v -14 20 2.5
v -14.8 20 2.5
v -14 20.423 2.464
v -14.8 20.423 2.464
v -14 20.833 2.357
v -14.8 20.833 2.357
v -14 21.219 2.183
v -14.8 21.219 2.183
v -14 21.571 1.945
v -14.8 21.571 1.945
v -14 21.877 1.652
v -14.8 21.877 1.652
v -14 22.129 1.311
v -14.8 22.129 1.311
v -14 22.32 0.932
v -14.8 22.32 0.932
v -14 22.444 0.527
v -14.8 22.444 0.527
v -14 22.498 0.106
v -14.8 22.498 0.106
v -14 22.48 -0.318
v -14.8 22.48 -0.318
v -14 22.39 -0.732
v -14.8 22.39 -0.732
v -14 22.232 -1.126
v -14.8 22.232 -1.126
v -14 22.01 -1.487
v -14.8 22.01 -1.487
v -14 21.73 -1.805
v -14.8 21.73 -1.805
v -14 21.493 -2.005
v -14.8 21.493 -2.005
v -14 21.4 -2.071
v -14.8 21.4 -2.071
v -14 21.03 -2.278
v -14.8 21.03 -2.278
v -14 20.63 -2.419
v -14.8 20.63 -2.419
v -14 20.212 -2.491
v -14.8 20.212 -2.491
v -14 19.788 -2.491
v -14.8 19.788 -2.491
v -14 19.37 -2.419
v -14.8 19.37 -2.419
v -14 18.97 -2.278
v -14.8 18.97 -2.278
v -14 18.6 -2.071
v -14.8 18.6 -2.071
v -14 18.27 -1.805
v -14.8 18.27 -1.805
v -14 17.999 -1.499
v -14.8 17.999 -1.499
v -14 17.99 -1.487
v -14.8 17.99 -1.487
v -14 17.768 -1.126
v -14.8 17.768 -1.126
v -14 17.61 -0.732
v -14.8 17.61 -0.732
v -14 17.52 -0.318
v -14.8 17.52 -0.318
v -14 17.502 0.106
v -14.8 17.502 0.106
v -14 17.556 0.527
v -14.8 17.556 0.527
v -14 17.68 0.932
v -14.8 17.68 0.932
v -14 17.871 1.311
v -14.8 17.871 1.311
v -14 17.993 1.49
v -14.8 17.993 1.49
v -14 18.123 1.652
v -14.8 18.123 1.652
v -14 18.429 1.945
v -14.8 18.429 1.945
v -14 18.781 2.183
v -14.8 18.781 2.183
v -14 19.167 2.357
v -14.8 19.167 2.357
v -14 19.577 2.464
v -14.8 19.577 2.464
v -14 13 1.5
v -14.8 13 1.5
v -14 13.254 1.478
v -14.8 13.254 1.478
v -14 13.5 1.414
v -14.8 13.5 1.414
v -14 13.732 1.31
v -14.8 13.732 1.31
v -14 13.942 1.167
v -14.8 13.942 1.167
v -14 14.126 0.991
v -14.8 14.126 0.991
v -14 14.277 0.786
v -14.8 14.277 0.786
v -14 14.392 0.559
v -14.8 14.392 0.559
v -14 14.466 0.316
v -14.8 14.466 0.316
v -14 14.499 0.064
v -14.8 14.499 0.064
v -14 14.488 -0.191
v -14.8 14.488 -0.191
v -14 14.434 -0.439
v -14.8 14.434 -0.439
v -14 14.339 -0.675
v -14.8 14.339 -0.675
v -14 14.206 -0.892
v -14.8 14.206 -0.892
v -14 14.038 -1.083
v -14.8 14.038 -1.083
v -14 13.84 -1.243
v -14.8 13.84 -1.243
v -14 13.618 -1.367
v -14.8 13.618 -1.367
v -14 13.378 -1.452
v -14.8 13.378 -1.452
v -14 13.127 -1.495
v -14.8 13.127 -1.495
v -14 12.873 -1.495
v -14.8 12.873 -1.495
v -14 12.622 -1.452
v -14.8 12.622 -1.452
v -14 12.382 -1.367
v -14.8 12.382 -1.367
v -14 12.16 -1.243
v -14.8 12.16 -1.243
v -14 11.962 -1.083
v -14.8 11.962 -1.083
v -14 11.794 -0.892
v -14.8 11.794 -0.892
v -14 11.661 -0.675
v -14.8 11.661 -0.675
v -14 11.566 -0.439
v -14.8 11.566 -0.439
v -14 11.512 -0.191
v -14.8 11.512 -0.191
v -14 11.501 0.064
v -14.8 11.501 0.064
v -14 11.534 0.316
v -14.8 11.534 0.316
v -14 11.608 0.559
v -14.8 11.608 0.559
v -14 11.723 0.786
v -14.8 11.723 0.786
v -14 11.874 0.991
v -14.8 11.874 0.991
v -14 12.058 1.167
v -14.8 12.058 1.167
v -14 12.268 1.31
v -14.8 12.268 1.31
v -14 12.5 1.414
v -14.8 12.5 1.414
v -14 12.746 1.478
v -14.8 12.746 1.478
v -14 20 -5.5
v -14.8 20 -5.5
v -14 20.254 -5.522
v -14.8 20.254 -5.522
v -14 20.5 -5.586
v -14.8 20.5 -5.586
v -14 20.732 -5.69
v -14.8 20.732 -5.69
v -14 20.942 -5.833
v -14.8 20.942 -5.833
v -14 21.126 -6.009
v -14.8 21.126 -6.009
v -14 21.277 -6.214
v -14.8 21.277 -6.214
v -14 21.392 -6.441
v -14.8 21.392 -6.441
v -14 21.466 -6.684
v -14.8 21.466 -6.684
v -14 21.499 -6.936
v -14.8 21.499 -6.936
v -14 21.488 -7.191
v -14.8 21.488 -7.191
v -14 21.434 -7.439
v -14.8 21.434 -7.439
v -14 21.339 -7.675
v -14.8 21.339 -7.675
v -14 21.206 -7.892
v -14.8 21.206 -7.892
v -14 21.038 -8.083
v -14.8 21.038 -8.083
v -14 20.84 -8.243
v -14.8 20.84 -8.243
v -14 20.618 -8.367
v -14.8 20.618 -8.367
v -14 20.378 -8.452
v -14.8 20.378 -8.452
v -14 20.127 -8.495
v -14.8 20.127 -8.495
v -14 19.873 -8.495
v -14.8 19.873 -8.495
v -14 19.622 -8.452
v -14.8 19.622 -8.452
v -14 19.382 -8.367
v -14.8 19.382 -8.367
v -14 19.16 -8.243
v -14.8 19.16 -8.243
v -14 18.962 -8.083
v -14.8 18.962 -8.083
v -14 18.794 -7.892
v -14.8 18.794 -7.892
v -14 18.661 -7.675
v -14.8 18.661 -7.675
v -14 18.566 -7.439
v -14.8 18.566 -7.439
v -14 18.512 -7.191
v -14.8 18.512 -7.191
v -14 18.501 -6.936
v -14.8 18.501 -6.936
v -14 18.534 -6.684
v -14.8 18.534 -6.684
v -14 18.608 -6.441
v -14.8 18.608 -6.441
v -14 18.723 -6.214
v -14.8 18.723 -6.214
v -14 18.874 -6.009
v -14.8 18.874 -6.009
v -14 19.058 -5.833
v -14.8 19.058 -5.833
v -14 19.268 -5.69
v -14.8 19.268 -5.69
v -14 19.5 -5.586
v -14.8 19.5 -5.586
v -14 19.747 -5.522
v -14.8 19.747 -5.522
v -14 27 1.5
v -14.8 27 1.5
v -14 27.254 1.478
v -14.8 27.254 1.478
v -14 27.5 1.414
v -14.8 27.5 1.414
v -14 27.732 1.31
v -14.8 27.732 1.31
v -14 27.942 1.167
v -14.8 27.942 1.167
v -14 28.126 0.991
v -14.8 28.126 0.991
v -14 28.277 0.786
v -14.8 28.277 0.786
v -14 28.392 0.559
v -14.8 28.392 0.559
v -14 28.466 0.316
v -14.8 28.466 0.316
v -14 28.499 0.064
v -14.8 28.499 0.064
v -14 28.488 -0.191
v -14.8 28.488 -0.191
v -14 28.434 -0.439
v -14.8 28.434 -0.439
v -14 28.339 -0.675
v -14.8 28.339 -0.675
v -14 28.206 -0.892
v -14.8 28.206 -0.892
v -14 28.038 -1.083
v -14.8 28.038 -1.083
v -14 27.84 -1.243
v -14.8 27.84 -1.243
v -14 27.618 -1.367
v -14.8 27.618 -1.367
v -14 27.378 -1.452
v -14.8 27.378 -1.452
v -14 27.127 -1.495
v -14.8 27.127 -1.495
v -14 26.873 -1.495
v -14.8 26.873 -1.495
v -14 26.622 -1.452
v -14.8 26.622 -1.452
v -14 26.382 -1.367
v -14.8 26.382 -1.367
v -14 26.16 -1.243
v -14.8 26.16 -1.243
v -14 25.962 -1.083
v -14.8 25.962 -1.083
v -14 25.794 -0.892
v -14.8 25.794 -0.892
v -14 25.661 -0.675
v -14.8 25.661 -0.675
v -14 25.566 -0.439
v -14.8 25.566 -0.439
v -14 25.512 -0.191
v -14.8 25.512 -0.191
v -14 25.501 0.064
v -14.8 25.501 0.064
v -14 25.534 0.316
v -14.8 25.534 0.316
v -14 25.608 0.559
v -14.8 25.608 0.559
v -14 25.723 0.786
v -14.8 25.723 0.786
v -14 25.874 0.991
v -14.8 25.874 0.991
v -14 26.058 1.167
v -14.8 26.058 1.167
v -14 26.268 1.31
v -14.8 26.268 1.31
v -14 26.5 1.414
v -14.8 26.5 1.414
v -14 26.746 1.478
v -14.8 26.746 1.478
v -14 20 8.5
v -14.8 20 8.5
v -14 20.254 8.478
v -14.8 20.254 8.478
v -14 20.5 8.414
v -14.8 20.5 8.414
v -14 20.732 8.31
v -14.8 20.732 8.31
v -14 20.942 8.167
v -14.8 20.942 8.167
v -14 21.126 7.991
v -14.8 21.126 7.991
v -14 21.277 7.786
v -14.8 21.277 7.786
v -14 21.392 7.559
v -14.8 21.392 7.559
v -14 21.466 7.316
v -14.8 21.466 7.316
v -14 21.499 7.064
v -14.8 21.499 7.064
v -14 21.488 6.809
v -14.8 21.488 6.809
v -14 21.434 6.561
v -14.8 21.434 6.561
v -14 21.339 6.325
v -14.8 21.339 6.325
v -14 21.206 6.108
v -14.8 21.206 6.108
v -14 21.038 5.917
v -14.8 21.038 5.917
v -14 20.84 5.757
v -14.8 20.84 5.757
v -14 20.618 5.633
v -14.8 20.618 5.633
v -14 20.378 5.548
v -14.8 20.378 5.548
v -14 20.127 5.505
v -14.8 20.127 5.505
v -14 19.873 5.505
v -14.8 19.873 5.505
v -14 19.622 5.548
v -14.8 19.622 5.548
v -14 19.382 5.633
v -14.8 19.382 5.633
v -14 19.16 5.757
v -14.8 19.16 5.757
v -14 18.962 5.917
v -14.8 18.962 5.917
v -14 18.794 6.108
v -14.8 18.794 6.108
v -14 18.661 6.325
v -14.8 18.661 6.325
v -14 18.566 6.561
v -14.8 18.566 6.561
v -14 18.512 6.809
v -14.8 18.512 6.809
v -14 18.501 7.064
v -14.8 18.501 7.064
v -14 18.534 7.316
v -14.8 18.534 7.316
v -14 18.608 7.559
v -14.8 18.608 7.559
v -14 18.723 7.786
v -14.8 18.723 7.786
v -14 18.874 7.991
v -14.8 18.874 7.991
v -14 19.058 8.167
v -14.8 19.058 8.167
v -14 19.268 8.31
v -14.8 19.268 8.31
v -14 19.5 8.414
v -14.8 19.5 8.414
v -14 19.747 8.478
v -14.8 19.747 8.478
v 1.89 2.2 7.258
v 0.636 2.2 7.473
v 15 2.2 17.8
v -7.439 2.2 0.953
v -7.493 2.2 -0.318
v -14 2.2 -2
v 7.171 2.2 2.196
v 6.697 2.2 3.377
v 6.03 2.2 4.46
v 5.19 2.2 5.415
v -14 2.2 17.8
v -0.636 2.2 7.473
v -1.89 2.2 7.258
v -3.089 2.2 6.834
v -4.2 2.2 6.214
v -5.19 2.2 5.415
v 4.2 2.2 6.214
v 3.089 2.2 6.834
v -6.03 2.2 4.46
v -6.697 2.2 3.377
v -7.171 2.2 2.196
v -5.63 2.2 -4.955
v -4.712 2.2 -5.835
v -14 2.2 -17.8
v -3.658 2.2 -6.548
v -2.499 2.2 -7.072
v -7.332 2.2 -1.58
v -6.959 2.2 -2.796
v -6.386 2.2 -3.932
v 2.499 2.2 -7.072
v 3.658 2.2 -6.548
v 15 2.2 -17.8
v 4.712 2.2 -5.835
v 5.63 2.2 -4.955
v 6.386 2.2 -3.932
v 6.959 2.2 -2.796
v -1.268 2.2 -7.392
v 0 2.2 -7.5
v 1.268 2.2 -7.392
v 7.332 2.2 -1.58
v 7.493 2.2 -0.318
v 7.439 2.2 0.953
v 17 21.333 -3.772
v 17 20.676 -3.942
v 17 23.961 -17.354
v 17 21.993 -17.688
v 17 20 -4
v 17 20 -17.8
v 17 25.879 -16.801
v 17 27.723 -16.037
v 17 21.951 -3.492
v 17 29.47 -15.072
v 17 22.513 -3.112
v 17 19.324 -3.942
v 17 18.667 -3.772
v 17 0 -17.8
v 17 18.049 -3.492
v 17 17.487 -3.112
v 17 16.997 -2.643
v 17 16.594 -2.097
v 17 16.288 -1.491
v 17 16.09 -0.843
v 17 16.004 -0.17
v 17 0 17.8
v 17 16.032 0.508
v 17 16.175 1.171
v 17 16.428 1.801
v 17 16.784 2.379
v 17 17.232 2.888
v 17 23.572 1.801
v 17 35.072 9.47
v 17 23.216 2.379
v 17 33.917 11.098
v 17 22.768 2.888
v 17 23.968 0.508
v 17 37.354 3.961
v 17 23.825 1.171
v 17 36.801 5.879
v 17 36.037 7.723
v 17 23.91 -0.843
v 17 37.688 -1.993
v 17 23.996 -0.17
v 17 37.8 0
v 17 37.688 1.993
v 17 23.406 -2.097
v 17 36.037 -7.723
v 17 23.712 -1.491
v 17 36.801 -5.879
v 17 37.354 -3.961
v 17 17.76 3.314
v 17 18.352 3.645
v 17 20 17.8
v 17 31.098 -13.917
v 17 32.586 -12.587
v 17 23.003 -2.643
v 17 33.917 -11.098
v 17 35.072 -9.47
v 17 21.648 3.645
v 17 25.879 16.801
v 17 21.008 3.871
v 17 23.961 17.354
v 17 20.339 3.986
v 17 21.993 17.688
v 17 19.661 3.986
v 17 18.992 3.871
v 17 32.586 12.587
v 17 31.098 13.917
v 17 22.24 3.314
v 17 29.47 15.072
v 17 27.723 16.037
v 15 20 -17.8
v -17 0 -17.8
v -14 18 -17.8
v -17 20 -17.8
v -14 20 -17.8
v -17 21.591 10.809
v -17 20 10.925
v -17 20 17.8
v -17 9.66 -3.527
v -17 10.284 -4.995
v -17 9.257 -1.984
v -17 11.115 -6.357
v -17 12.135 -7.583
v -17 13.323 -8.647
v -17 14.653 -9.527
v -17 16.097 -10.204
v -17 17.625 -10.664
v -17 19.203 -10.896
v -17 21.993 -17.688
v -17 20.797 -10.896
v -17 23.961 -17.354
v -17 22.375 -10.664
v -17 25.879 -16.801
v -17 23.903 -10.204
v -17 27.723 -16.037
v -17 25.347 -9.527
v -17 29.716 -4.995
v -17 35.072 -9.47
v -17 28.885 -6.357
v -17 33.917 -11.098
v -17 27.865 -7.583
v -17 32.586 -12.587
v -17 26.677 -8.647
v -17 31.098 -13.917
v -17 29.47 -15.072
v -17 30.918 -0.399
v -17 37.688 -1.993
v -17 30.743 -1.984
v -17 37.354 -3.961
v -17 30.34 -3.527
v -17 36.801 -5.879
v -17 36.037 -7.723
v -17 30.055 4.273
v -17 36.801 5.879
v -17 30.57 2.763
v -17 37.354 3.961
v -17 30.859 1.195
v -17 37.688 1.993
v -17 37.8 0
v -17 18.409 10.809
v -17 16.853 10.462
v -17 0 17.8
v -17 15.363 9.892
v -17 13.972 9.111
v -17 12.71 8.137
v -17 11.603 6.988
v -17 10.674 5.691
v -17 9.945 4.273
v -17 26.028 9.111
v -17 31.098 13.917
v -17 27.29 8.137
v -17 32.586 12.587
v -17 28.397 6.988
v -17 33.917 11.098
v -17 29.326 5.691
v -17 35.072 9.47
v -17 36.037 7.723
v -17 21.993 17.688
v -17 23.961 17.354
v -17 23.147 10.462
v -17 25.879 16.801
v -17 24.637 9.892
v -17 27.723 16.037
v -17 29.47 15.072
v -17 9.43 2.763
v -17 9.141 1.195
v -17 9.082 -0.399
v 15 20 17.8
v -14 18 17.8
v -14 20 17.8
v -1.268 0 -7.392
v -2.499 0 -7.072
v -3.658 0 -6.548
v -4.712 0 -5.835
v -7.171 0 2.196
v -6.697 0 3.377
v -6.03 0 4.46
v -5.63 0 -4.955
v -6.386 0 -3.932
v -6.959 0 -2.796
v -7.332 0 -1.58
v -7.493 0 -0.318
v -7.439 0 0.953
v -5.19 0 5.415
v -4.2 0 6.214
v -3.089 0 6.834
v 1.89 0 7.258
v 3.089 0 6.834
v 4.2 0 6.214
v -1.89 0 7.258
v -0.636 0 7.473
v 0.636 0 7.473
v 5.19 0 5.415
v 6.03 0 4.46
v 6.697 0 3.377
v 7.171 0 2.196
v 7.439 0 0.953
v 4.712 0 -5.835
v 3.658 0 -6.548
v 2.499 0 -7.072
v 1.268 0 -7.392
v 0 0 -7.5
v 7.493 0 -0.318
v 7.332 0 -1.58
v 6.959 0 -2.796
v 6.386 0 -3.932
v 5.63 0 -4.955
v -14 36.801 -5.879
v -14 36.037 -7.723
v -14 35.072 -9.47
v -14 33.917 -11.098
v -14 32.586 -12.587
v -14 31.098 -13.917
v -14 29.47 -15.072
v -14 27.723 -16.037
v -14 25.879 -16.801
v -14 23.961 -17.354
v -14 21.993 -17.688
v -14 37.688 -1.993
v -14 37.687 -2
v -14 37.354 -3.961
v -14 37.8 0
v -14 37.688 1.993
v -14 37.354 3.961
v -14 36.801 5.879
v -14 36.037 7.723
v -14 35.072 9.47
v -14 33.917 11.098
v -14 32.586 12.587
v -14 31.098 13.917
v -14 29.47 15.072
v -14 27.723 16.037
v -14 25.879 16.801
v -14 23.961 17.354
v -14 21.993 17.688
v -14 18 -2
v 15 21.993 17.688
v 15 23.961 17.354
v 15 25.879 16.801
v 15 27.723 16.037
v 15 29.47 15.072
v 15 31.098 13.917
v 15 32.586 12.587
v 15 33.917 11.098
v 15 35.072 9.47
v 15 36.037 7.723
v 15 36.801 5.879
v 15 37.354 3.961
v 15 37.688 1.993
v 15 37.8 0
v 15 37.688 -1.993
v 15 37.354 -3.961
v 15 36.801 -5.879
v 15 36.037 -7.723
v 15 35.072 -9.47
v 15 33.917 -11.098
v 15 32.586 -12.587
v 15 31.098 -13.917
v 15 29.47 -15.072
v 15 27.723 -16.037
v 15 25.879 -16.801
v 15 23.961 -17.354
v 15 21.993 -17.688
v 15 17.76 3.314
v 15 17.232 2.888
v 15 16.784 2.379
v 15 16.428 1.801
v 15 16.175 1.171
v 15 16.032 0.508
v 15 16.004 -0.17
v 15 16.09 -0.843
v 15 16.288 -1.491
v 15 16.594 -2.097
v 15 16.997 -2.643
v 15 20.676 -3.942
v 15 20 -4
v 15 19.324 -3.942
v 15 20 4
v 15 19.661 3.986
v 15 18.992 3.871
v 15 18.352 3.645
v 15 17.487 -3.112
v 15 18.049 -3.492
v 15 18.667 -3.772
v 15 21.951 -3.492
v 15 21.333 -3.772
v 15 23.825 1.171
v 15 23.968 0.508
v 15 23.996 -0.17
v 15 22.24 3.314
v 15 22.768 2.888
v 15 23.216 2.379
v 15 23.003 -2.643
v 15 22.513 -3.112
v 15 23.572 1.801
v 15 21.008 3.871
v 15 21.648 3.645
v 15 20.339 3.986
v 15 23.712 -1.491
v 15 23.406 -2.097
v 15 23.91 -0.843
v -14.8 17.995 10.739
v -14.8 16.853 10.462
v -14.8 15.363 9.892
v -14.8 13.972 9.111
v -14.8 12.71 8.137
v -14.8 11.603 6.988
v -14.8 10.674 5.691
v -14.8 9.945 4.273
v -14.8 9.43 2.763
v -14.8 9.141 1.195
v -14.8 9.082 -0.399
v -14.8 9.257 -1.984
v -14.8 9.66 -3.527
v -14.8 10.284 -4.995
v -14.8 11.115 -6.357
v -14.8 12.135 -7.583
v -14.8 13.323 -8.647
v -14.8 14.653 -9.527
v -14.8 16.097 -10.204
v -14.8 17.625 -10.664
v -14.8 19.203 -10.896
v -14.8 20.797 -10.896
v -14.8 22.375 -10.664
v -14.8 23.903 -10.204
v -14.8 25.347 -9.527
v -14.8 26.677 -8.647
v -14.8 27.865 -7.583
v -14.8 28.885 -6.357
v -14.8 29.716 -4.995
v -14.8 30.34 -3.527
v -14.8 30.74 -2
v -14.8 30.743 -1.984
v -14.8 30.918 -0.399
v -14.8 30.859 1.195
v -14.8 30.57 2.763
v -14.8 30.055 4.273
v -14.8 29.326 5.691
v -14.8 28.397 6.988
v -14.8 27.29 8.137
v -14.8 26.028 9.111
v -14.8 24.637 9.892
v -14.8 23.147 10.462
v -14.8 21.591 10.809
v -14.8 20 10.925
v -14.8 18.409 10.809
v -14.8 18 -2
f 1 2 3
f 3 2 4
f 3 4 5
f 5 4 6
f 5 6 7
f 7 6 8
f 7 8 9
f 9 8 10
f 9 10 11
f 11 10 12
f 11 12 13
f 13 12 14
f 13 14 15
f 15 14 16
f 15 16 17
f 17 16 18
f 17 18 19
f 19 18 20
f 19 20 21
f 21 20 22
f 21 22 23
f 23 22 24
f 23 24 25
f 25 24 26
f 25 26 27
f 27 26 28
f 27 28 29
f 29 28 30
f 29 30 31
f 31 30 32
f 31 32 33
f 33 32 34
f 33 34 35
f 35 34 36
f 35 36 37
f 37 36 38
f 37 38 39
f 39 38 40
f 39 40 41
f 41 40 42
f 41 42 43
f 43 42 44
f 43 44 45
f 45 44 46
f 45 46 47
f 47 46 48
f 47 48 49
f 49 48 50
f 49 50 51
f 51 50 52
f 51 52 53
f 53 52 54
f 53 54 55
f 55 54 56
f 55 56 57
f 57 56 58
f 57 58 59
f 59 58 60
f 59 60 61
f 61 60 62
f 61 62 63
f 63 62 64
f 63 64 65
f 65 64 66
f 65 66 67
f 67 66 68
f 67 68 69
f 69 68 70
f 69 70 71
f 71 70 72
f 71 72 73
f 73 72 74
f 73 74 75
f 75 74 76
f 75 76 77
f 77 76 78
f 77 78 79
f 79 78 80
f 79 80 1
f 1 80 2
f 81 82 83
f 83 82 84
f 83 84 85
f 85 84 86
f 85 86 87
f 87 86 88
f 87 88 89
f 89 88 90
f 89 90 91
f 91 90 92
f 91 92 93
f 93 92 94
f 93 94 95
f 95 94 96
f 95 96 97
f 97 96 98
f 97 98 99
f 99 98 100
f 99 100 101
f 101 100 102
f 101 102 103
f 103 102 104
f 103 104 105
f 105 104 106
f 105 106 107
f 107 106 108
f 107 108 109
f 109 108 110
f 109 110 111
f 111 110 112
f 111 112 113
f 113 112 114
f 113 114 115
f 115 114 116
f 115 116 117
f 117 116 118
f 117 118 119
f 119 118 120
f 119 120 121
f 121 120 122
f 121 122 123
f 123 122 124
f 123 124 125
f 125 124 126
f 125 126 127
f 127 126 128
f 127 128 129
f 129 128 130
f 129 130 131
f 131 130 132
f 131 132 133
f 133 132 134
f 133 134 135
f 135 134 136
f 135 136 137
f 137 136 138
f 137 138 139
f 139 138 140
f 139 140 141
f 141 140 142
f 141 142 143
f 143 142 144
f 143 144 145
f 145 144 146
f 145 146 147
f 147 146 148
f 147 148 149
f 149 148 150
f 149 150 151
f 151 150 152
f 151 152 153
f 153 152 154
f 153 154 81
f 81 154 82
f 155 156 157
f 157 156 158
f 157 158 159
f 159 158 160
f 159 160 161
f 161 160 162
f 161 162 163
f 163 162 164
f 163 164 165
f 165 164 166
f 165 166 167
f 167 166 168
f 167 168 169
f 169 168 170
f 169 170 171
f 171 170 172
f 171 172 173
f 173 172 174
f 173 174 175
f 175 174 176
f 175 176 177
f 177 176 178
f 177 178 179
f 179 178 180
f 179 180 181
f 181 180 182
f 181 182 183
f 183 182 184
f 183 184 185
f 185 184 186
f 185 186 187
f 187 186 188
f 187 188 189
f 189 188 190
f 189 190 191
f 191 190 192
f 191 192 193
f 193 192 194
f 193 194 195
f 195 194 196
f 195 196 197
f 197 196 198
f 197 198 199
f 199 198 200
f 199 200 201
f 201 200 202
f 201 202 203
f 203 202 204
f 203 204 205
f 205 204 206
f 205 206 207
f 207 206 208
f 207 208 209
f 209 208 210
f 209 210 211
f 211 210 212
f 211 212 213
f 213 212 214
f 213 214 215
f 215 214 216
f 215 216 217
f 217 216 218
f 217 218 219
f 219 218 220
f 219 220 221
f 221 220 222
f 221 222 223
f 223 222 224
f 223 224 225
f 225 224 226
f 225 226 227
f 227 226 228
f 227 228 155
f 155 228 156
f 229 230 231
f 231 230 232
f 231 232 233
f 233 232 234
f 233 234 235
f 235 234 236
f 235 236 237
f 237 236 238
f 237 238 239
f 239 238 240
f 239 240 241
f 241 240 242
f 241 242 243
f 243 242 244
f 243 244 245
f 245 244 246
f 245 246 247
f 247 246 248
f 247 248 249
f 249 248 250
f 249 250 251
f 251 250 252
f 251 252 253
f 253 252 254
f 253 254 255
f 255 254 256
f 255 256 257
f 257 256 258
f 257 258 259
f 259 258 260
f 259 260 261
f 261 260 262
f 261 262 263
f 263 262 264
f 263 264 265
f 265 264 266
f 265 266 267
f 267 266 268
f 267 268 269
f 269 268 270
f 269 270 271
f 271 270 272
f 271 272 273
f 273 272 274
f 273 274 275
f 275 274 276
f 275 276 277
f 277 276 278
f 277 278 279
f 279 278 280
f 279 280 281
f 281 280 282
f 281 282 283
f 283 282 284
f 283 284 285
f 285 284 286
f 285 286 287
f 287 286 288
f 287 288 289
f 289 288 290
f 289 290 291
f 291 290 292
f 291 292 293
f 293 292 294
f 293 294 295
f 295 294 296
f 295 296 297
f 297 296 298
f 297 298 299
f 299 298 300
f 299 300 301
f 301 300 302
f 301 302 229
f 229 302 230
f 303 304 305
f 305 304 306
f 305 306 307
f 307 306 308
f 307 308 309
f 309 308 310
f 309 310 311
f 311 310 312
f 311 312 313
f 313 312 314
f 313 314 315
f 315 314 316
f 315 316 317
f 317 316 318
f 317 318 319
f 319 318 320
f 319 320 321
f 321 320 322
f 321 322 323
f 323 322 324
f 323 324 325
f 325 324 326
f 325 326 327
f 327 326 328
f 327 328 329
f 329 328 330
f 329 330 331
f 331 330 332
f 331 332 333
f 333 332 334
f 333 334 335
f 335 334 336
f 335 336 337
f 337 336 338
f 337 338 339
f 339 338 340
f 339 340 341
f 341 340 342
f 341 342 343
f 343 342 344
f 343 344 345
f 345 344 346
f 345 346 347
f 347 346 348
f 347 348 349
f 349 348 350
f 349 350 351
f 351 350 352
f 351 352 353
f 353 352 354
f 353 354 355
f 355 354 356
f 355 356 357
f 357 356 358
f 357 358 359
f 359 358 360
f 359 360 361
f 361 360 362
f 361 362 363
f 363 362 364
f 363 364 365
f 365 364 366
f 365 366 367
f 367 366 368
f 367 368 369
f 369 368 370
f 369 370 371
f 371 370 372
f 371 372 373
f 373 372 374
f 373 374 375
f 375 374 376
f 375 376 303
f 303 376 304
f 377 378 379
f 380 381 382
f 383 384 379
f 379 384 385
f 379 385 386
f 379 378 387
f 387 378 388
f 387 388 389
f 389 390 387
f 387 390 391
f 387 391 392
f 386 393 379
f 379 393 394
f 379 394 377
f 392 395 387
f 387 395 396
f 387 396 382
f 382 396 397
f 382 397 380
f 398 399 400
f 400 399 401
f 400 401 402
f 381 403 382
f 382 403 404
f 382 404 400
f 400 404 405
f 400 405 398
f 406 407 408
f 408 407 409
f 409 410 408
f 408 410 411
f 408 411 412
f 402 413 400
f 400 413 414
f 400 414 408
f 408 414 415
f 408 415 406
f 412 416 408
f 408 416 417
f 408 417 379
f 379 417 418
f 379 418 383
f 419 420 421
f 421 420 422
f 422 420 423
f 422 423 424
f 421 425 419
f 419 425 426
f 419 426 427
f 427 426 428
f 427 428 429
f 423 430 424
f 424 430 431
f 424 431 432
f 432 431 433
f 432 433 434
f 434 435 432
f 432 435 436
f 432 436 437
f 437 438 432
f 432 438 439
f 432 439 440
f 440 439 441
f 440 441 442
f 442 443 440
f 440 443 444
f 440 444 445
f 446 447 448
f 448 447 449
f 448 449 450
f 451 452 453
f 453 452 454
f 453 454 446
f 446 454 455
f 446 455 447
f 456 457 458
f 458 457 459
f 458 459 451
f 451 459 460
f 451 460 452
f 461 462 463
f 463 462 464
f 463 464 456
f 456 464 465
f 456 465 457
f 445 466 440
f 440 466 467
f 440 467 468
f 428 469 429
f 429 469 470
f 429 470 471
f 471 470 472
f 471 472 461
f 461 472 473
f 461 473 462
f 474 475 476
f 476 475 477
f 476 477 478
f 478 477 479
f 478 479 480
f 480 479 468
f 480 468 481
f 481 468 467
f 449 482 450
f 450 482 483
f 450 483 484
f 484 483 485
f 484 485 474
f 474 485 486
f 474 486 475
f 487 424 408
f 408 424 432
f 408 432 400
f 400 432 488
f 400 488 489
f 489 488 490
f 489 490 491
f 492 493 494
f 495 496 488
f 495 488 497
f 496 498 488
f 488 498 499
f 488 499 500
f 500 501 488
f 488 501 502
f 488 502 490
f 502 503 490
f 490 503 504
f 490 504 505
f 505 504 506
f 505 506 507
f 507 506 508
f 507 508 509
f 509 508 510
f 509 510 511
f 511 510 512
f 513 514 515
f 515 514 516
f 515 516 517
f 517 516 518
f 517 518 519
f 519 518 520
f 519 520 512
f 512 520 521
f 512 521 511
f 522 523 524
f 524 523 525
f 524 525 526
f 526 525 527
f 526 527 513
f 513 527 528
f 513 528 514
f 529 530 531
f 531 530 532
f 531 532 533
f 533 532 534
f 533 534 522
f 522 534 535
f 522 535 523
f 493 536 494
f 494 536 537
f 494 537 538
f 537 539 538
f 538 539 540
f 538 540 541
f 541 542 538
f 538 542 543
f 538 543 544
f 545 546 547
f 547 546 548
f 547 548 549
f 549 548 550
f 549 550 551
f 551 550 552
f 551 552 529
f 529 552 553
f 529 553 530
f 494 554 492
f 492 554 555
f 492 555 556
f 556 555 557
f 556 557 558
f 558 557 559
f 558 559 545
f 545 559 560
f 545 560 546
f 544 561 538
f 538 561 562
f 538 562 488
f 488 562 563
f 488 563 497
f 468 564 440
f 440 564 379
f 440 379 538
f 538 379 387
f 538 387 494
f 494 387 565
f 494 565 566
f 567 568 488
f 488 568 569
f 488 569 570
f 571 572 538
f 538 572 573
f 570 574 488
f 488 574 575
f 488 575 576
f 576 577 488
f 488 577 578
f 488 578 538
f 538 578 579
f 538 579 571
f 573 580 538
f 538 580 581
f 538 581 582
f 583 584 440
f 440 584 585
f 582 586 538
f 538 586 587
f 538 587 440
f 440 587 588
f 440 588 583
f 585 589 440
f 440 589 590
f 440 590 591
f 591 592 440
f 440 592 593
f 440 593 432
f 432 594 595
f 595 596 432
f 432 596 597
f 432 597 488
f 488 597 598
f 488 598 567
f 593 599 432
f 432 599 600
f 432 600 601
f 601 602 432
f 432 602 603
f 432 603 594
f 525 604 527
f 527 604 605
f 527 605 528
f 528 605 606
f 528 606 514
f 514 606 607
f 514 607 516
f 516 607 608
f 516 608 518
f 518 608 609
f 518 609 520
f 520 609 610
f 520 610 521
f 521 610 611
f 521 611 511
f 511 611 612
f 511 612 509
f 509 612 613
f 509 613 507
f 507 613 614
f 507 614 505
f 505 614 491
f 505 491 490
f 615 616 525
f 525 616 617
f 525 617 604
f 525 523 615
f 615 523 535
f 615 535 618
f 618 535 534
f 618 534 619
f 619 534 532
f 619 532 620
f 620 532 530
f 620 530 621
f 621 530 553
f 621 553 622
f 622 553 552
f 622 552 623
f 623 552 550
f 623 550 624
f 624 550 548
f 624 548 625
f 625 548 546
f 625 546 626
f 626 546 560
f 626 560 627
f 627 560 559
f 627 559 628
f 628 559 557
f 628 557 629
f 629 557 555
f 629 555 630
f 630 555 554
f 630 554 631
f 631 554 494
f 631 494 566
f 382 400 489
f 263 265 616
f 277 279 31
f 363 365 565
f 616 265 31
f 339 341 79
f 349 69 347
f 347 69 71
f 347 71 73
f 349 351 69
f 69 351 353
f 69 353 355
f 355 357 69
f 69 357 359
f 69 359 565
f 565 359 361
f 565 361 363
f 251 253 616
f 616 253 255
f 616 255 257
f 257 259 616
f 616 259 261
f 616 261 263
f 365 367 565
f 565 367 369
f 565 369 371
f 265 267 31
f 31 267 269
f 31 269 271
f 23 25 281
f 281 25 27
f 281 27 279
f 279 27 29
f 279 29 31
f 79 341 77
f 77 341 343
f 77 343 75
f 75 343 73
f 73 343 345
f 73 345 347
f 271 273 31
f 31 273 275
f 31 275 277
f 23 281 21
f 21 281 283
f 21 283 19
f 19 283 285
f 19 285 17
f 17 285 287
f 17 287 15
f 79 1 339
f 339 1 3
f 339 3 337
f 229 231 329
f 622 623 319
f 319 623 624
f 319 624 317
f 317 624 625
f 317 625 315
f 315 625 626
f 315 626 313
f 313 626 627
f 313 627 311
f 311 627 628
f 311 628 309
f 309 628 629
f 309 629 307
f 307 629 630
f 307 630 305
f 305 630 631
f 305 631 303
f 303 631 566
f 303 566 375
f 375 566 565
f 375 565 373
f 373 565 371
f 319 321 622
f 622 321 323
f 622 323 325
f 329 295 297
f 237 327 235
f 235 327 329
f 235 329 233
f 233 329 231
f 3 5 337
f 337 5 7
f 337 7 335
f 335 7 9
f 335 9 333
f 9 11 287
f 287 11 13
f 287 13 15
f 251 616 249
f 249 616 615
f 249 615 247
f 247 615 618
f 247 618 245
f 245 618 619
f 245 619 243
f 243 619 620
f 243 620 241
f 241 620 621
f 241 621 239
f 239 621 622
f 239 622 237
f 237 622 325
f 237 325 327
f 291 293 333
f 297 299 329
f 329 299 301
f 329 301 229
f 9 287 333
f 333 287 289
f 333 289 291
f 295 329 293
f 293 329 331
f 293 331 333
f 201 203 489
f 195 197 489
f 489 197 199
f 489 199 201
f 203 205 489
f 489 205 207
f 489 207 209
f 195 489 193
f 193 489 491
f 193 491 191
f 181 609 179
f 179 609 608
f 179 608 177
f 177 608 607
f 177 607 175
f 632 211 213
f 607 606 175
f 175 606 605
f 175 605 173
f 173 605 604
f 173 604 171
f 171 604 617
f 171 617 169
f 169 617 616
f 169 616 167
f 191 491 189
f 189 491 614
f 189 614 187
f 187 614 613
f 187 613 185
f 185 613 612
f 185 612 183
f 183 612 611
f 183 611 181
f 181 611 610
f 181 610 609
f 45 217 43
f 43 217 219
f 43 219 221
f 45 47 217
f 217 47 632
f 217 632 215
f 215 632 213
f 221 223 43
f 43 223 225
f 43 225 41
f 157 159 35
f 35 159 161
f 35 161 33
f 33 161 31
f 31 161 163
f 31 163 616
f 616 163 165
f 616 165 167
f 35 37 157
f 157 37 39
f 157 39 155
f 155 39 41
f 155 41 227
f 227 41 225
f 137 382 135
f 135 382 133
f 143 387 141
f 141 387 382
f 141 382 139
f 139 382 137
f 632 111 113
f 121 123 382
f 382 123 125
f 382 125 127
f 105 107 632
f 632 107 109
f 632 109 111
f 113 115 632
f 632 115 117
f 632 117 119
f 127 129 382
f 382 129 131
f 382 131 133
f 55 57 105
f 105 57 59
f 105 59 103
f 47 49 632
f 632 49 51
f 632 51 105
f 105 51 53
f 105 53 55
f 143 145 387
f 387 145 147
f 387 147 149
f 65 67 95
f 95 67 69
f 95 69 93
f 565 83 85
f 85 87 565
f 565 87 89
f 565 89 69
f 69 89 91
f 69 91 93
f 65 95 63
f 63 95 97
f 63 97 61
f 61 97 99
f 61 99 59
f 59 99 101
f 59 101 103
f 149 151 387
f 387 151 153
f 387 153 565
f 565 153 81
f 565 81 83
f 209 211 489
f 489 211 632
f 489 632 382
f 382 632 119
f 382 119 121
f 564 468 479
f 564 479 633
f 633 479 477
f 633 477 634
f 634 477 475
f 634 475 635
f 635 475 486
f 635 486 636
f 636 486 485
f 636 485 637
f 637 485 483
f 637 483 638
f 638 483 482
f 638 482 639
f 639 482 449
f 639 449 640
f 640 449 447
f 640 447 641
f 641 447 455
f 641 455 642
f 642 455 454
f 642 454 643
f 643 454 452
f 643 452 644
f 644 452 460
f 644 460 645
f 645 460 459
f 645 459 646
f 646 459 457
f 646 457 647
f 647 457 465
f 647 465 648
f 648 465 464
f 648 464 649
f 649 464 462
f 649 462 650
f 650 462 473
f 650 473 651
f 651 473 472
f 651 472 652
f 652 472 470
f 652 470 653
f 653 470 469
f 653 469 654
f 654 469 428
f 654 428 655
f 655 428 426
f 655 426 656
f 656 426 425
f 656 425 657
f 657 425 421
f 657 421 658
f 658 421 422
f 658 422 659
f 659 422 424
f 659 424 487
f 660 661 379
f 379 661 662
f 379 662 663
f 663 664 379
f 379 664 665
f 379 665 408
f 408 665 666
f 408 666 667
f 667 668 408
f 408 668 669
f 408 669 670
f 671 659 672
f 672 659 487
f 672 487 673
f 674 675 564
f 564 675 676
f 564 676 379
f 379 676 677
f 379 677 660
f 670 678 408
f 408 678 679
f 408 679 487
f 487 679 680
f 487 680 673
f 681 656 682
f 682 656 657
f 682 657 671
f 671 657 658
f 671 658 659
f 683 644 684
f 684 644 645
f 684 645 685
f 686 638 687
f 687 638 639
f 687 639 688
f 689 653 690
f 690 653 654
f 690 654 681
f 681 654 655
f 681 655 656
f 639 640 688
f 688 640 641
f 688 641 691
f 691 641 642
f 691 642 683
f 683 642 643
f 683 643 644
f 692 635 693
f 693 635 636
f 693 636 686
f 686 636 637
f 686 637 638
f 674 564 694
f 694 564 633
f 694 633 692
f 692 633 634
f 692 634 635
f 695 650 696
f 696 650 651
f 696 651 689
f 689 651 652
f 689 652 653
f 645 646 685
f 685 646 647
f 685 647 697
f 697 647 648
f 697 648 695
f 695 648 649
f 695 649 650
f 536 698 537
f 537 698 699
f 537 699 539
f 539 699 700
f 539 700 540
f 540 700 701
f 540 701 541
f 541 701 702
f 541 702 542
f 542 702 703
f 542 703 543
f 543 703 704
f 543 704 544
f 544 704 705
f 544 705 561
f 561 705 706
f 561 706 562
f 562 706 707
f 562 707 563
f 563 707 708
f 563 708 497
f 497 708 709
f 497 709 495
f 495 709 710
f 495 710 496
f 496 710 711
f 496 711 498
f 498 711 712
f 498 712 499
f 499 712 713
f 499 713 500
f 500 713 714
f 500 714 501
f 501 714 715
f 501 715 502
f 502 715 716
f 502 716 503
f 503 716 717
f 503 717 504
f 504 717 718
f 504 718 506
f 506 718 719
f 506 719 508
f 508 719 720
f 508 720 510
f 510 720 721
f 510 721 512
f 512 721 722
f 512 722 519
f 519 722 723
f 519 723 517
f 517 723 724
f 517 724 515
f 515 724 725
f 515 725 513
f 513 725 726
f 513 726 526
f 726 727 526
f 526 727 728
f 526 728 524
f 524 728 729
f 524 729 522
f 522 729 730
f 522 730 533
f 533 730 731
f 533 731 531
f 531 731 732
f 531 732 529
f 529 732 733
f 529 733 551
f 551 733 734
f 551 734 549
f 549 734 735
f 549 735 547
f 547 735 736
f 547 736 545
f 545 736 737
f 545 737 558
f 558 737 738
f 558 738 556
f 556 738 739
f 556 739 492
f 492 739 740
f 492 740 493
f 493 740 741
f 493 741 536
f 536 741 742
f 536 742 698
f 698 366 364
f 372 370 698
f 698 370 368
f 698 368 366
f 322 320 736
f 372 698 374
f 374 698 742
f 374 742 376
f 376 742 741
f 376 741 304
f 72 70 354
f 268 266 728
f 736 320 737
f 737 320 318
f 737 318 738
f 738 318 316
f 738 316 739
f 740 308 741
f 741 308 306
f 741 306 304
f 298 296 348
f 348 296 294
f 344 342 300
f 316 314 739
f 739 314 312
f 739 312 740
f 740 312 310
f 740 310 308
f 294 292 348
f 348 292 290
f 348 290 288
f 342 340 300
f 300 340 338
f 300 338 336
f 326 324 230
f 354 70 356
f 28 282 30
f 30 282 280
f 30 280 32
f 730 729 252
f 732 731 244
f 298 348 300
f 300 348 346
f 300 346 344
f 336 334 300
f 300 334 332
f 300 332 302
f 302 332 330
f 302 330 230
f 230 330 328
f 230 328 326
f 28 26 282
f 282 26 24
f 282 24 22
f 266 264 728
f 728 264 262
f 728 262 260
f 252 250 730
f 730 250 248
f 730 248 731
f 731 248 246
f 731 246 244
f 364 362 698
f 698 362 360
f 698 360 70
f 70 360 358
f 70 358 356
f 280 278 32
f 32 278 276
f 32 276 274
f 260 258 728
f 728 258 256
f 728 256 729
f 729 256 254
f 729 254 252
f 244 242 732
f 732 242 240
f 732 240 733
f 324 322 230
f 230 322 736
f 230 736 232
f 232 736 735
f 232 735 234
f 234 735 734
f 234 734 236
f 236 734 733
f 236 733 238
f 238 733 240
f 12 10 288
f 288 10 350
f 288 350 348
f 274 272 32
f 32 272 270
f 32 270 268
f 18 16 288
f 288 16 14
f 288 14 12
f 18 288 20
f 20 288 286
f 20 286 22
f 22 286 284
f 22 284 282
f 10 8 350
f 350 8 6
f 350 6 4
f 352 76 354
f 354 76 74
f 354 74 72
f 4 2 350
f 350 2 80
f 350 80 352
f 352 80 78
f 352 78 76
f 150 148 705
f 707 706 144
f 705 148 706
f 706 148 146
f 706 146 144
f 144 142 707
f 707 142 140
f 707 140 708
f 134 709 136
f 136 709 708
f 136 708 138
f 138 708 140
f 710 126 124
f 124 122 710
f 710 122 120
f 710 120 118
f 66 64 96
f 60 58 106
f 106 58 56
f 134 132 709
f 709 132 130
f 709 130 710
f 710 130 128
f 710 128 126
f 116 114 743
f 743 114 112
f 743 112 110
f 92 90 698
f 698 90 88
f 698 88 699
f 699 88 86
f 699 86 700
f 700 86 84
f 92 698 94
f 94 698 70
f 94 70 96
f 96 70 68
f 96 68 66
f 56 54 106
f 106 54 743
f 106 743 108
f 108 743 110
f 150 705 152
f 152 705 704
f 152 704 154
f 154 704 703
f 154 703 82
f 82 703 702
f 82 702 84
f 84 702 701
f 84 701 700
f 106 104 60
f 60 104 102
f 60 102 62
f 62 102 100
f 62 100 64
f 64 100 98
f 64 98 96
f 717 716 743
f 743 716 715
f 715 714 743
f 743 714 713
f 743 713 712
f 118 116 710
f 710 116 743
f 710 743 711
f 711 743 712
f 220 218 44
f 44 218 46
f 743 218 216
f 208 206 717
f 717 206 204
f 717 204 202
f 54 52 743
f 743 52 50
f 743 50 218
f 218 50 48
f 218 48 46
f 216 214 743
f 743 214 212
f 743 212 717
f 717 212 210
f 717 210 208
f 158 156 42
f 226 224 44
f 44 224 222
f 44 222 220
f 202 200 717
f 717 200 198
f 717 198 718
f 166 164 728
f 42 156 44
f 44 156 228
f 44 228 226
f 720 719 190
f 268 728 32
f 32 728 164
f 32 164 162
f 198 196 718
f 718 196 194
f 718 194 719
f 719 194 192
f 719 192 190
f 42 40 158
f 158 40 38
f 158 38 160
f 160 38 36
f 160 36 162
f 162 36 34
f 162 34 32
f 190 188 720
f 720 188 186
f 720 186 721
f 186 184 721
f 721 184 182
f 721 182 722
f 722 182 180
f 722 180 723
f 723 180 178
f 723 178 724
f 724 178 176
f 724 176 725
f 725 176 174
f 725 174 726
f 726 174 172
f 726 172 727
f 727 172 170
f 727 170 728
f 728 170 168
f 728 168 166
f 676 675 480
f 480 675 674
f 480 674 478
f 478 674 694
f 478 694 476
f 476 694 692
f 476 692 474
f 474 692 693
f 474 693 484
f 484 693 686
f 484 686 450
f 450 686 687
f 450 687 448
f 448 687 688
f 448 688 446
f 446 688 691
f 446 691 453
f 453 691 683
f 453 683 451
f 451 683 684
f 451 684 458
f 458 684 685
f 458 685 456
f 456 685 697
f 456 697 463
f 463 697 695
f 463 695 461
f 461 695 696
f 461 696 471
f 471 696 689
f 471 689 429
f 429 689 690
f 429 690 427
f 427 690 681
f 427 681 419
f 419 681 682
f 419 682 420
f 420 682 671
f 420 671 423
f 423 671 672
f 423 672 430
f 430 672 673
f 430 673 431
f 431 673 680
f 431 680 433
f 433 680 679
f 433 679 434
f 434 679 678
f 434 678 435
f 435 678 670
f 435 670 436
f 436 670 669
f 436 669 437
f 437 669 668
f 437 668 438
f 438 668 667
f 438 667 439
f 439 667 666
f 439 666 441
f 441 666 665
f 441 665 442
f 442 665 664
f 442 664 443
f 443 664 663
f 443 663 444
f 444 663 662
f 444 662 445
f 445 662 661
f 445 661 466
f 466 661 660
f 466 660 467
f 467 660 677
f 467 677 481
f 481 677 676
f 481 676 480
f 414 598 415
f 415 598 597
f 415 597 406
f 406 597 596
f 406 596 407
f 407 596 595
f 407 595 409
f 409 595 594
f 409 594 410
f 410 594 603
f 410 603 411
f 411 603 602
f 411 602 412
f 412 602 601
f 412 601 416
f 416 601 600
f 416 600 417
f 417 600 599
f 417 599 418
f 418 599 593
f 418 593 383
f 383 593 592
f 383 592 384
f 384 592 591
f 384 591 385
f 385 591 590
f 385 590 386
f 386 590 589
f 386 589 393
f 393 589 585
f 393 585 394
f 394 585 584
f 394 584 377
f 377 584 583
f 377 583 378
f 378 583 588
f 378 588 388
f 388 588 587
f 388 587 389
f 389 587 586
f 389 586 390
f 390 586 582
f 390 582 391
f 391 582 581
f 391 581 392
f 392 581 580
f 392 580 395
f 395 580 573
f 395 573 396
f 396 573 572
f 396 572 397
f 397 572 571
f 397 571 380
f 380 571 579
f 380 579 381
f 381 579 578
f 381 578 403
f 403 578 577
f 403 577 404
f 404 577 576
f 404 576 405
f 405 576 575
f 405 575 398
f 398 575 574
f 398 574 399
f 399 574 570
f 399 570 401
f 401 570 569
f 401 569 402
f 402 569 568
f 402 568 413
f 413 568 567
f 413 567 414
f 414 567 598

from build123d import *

# Parameters (mm, degrees)
SKETCH1_W               = 34
SKETCH1_H               = 35.6
BOSS_EXTRUDE1_DEPTH     = 2.2
BOSS_EXTRUDE2_DEPTH     = 3
BOSS_EXTRUDE3_START     = -32
BOSS_EXTRUDE3_DEPTH     = 2
SKETCH4_R               = 2.5
SKETCH4_R_2             = 1.5
CUT_EXTRUDE1_DEPTH      = 12
SKETCH4_3_R             = 10.925
SKETCH4_3_R_2           = 1.5
SKETCH4_3_R_3           = 2.5
CUT_EXTRUDE2_DEPTH      = 2.2
SKETCH5_R               = 4
CUT_EXTRUDE3_DEPTH      = 12.2
CUT_EXTRUDE4_DEPTH      = 46.107427326
CUT_EXTRUDE4_DEPTH_BACK = 46.107427326
SKETCH6_R               = 7.5


with BuildPart() as part:
    # Sketch1 → Boss-Extrude1 (new body)
    with BuildSketch(Plane(origin=(0, 0, 0), x_dir=(1, 0, 0), z_dir=(0, 1, 0))):
        Rectangle(SKETCH1_W, SKETCH1_H)
    extrude(amount=BOSS_EXTRUDE1_DEPTH)

    # Sketch3 → Boss-Extrude2 (add)
    with BuildSketch(Plane.ZY.offset(17)):
        with BuildLine():
            Line((0, 37.8), (0, 2.2))
            Line((0, 2.2), (17.8, 2.2))
            Line((17.8, 2.2), (17.8, 20))
            ThreePointArc((17.8, 20), (12.586500705, 32.586500705), (0, 37.8))
        make_face()
        with BuildLine():
            Line((-17.8, 2.2), (0, 2.2))
            Line((0, 2.2), (0, 37.8))
            ThreePointArc((0, 37.8), (-12.586500705, 32.586500705), (-17.8, 20))
            Line((-17.8, 20), (-17.8, 2.2))
        make_face()
    extrude(amount=-BOSS_EXTRUDE2_DEPTH)

    # Sketch3<4> → Boss-Extrude3 (add)
    with BuildSketch(Plane.ZY.offset(17).offset(BOSS_EXTRUDE3_START)):
        with BuildLine():
            Line((-17.8, 2.2), (0, 2.2))
            Line((0, 2.2), (0, 37.8))
            ThreePointArc((0, 37.8), (-12.586500705, 32.586500705), (-17.8, 20))
            Line((-17.8, 20), (-17.8, 2.2))
        make_face()
        with BuildLine():
            Line((0, 37.8), (0, 2.2))
            Line((0, 2.2), (17.8, 2.2))
            Line((17.8, 2.2), (17.8, 20))
            ThreePointArc((17.8, 20), (12.586500705, 32.586500705), (0, 37.8))
        make_face()
    extrude(amount=-BOSS_EXTRUDE3_DEPTH)

    # Sketch4 → Cut-Extrude1 (cut)
    with BuildSketch(Plane.ZY.offset(17)):
        with Locations((0, 20)):
            Circle(SKETCH4_R)
        with Locations((7, 20)):
            Circle(SKETCH4_R_2)
        with Locations((0, 27)):
            Circle(SKETCH4_R_2)
        with Locations((-7, 20)):
            Circle(SKETCH4_R_2)
        with Locations((0, 13)):
            Circle(SKETCH4_R_2)
    extrude(amount=-CUT_EXTRUDE1_DEPTH, mode=Mode.SUBTRACT)

    # Sketch4<3> → Cut-Extrude2 (cut)
    with BuildSketch(Plane.ZY.offset(17)):
        with Locations((0, 20)):
            Circle(SKETCH4_3_R)
        with Locations((0, 27)):
            Circle(SKETCH4_3_R_2, mode=Mode.SUBTRACT)
        with Locations((0, 13)):
            Circle(SKETCH4_3_R_2, mode=Mode.SUBTRACT)
        with Locations((-7, 20)):
            Circle(SKETCH4_3_R_2, mode=Mode.SUBTRACT)
        with Locations((7, 20)):
            Circle(SKETCH4_3_R_2, mode=Mode.SUBTRACT)
        with Locations((0, 20)):
            Circle(SKETCH4_3_R_3, mode=Mode.SUBTRACT)
    extrude(amount=-CUT_EXTRUDE2_DEPTH, mode=Mode.SUBTRACT)

    # Sketch5 → Cut-Extrude3 (cut)
    with BuildSketch(Plane(origin=(17, 0, 0), x_dir=(0, 0, -1), z_dir=(1, 0, 0))):
        with Locations((0, 20)):
            Circle(SKETCH5_R)
    extrude(amount=-CUT_EXTRUDE3_DEPTH, mode=Mode.SUBTRACT)

    # Sketch6 → Cut-Extrude4 (cut, two sides: drawn at the far end of the back side and taken through both)
    with BuildSketch(Plane.XZ.offset(-CUT_EXTRUDE4_DEPTH_BACK)):
        with Locations(Location((0, 0, 0), (0, 0, 270))):
            Circle(SKETCH6_R)
    extrude(amount=CUT_EXTRUDE4_DEPTH + CUT_EXTRUDE4_DEPTH_BACK, mode=Mode.SUBTRACT)


solid = part.part
